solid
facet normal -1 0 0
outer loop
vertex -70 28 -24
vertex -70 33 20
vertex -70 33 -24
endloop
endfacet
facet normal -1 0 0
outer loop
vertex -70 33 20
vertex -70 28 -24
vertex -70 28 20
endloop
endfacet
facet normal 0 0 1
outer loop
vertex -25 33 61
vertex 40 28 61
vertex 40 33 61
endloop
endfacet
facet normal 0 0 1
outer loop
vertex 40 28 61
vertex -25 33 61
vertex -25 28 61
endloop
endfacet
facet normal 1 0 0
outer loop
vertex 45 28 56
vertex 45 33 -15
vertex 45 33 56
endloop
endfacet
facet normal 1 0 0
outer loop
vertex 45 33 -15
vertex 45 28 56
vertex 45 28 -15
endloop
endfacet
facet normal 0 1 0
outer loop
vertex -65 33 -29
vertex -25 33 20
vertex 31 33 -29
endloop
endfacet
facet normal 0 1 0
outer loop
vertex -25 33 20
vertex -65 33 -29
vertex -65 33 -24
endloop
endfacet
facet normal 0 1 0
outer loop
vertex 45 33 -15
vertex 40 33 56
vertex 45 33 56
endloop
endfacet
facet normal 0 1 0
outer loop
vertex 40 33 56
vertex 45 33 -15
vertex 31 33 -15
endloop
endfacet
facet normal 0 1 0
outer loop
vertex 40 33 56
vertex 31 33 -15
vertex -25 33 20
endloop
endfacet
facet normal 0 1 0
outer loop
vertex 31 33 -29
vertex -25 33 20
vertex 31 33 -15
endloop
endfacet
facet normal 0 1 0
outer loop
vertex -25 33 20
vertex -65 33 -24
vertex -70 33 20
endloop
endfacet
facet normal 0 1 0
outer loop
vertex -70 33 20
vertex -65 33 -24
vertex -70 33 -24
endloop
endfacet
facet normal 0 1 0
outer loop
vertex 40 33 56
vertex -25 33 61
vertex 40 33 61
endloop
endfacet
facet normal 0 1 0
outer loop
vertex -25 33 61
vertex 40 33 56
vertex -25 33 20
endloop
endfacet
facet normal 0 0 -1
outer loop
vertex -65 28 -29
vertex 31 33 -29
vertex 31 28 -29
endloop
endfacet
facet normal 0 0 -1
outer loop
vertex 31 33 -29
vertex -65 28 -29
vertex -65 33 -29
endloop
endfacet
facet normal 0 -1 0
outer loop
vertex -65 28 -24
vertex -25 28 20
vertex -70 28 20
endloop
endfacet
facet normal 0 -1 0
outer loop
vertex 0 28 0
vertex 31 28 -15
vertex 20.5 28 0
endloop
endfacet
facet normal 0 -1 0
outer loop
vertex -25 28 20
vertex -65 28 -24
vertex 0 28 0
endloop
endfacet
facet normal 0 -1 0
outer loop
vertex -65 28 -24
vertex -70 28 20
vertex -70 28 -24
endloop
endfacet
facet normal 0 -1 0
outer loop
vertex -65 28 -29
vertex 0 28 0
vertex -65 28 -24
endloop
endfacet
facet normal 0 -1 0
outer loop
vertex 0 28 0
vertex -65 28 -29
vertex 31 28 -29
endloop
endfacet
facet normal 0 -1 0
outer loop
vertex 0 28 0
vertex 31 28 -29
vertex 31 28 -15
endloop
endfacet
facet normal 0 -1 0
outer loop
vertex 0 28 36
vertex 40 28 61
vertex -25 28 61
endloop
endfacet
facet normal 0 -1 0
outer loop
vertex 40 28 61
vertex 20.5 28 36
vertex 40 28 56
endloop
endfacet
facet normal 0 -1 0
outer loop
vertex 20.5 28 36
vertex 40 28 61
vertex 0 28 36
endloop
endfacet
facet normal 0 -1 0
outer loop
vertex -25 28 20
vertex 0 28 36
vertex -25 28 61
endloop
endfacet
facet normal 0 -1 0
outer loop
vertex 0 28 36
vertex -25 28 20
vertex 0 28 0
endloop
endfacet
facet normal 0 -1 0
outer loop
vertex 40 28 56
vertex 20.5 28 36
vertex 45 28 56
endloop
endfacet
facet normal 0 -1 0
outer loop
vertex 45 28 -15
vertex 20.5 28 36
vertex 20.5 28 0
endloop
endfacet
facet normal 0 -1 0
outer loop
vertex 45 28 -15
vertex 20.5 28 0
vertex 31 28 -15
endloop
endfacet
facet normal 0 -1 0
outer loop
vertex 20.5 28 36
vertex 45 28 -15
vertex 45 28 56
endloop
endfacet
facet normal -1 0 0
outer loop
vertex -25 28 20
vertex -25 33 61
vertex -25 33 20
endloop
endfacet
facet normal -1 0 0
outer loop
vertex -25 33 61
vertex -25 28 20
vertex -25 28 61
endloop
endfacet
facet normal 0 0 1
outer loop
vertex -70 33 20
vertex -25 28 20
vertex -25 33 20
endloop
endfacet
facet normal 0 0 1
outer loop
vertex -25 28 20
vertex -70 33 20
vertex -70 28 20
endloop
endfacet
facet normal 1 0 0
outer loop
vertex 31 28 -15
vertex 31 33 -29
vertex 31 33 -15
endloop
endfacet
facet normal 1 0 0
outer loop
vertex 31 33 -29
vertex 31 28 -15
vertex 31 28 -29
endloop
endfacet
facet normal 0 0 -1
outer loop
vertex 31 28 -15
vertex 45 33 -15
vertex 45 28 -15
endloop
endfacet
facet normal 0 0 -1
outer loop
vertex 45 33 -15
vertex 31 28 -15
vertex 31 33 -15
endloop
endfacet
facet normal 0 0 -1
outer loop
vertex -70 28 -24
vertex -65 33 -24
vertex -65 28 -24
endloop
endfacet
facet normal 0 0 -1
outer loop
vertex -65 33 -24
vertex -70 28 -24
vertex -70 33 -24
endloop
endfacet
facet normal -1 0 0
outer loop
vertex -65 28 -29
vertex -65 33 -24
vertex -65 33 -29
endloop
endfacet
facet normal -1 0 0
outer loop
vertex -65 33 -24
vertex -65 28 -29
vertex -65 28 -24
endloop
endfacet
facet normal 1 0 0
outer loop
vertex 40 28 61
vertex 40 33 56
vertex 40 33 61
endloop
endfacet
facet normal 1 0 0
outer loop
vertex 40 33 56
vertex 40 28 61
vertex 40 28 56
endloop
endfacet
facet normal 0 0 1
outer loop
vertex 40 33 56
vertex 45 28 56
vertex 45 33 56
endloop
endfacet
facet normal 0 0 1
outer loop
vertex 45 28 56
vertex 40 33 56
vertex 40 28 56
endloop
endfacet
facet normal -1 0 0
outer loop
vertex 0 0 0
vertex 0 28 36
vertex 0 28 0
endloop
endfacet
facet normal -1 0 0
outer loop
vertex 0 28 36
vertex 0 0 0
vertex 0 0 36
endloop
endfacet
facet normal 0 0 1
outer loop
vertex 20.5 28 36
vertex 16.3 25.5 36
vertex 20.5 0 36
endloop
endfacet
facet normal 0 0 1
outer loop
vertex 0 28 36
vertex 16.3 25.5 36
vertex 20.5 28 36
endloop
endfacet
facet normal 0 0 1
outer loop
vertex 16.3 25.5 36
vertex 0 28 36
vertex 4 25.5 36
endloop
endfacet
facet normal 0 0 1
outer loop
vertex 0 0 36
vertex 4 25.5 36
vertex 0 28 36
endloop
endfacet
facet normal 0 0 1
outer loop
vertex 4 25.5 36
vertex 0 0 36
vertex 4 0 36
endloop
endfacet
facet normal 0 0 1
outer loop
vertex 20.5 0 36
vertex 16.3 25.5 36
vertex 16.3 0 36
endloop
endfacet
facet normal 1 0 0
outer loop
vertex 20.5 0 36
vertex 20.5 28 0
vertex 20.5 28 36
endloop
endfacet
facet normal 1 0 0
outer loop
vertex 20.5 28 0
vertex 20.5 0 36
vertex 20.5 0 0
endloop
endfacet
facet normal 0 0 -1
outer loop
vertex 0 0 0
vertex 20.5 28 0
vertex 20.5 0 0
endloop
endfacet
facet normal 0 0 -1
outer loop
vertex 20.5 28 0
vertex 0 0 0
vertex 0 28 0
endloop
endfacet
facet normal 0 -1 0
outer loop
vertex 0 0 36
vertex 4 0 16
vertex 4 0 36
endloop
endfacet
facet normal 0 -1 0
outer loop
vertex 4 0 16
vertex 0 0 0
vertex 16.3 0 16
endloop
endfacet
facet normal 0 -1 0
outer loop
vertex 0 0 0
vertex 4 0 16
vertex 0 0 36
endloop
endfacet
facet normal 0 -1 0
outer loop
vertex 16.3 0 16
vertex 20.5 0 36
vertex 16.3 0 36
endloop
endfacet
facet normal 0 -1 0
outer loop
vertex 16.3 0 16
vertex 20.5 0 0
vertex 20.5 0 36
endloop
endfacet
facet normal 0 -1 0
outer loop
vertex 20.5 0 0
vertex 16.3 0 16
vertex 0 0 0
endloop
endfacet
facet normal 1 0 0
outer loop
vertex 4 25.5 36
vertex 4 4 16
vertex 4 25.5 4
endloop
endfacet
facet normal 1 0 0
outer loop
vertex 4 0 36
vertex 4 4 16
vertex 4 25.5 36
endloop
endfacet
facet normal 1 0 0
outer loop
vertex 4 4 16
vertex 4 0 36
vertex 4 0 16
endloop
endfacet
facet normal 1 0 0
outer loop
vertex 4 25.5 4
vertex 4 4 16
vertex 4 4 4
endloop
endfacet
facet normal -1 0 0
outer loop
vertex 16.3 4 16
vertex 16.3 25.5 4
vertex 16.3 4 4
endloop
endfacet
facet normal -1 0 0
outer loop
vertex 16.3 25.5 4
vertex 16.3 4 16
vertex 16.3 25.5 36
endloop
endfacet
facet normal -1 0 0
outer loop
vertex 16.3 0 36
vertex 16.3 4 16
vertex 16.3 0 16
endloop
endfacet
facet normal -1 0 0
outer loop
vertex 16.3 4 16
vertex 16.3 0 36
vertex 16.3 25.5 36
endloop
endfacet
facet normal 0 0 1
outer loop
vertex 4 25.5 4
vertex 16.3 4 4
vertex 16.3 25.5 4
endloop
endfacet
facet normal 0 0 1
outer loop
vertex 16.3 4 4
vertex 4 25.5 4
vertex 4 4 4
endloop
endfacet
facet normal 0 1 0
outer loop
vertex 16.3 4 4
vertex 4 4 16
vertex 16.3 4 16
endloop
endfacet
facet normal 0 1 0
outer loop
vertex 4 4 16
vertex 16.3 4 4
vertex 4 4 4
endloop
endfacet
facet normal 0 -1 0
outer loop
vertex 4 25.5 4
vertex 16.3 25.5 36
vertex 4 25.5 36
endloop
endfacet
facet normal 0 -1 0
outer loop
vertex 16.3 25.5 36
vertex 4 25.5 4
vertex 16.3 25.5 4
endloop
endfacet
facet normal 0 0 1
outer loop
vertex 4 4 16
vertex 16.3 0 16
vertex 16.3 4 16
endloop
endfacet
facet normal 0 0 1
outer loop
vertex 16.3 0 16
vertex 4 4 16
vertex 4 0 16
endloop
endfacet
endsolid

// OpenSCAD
//cube ([115,5,90]);

// 4.5 in long, 3.5 in high, 115 x 90

difference() {
    translate([-70,28,-29])
    cube([115, 5, 90]);
    translate([-75,20,20])
    cube([50,20,50]);
    translate([31, 25, -30])
    cube([15,15,15]);
    translate([-80, 25, -39])
    cube([15,15,15]);
    translate([40, 25, 56])
    cube([15,15,15]);
}




// motor hole 12.5 wide, 21.5 deep, 32 high
// motor box  20.5 wide, 29.5 deep, 36 high

color("red")
difference() {
    cube([20.5, 29.5, 36]);
    translate([4,4,4])
    cube([12.3, 21.5, 33]);
    translate([4,-1,16])
    cube([12.3,10,30]);
}
